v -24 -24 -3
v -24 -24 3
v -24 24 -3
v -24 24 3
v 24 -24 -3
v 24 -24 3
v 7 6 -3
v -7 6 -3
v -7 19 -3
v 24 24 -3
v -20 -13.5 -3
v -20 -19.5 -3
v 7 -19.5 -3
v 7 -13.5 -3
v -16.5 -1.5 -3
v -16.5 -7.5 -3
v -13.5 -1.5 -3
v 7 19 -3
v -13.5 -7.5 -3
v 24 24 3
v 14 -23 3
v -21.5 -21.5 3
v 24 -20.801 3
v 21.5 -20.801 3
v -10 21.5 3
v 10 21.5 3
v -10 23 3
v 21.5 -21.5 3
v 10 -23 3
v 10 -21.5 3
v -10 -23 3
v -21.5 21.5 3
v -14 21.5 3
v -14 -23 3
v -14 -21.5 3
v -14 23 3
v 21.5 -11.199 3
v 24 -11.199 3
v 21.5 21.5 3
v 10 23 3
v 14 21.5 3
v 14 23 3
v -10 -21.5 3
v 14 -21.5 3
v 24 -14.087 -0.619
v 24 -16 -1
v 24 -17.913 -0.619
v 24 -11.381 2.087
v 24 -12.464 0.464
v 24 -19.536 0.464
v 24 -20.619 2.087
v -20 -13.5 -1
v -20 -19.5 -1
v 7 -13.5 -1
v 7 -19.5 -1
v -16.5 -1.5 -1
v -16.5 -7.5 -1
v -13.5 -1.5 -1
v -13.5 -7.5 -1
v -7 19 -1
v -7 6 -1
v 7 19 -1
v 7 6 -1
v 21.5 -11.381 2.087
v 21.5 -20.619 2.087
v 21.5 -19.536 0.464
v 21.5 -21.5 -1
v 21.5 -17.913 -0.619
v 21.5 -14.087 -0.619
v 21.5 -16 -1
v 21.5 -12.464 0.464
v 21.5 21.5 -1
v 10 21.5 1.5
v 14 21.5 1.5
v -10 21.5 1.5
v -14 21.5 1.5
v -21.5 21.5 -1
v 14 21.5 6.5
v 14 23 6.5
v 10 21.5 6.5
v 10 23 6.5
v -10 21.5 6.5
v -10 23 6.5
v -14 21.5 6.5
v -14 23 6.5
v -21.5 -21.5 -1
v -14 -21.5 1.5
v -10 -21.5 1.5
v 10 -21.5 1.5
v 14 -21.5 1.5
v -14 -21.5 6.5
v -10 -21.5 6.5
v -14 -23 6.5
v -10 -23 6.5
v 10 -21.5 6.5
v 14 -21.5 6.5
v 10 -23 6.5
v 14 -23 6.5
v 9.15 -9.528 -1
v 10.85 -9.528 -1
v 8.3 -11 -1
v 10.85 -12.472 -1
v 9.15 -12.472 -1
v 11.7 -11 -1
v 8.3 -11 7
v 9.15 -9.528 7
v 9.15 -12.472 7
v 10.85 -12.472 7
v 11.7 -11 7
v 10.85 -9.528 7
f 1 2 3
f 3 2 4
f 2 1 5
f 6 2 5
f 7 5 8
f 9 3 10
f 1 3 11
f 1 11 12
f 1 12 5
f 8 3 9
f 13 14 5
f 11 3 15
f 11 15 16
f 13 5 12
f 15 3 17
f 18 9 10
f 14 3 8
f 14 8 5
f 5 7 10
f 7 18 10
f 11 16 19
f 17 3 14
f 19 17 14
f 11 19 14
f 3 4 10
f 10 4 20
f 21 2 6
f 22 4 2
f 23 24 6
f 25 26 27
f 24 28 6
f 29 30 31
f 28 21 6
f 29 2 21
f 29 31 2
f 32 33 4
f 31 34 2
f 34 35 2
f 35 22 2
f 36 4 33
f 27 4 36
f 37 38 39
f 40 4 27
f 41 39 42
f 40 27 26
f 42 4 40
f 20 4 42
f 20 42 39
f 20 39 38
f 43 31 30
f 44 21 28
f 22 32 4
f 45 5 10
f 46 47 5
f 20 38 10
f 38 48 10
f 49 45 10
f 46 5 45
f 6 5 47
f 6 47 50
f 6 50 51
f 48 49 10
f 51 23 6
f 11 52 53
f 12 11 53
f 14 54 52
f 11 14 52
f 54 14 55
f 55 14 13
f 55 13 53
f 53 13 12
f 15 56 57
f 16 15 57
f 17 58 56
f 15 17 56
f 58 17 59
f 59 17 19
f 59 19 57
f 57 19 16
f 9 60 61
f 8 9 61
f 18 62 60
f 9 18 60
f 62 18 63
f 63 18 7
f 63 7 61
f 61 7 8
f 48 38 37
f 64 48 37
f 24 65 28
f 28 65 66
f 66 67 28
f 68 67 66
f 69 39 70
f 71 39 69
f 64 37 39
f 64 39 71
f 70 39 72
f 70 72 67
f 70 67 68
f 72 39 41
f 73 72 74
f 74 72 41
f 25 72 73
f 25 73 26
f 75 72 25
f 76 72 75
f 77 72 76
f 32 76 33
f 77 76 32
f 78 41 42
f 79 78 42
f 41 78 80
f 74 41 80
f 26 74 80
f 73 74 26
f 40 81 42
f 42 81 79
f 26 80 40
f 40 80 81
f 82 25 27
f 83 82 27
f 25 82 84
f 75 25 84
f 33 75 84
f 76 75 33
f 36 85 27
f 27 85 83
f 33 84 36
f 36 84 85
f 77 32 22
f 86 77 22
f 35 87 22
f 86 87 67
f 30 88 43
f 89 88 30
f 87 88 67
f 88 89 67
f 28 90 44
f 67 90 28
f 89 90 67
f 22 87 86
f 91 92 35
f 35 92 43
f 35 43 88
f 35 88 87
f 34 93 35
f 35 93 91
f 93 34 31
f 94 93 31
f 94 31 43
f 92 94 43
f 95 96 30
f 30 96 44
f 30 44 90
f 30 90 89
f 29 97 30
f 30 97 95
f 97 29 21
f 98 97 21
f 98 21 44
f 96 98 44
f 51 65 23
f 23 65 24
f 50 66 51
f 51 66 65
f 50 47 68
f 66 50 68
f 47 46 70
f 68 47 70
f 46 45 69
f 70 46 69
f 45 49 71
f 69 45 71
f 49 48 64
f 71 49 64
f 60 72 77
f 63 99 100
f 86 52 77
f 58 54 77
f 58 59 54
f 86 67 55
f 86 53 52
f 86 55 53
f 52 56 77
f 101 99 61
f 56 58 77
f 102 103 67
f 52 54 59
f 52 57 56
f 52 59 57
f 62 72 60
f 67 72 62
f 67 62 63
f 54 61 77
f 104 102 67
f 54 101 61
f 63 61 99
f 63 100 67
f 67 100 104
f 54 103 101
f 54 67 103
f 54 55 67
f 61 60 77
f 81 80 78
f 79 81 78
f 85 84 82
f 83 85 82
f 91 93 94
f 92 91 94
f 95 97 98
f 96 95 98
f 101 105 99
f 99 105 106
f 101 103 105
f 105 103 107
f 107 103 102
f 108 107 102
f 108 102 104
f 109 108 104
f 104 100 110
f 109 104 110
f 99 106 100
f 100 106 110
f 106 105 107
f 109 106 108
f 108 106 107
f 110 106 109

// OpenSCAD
difference(){
	//Cubo de fuera
	cube(size=[48,48,6], center = true);
	//Cubo de dentro
	translate([0,0,2]) cube(size=[43,43,6], center = true);
	// Cubo Usb
	translate([0,12.5,-1]) cube(size=[14,13,6], center = true);
	//Cubo pines
	translate([-6.5,-16.5,-3]) cube(size=[27,6,6], center = true);
	//Cubo luz
	translate([-15,-4.5,0.5]) cube(size=[3,6,7.7], center = true);
	//Nariz
	translate([18,-16,4]) rotate([90,0,90]) cylinder(20,5,5);

}
translate([12,22.25,4]) cube(size=[4,1.5,5], center = true);
translate([-12,22.25,4]) cube(size=[4,1.5,5], center = true);
translate([12,-22.25,4]) cube(size=[4,1.5,5], center = true);
translate([-12,-22.25,4]) cube(size=[4,1.5,5], center = true);
translate([10,-11,-3]) rotate([0,0,0]) cylinder(10,1.7,1.7);
